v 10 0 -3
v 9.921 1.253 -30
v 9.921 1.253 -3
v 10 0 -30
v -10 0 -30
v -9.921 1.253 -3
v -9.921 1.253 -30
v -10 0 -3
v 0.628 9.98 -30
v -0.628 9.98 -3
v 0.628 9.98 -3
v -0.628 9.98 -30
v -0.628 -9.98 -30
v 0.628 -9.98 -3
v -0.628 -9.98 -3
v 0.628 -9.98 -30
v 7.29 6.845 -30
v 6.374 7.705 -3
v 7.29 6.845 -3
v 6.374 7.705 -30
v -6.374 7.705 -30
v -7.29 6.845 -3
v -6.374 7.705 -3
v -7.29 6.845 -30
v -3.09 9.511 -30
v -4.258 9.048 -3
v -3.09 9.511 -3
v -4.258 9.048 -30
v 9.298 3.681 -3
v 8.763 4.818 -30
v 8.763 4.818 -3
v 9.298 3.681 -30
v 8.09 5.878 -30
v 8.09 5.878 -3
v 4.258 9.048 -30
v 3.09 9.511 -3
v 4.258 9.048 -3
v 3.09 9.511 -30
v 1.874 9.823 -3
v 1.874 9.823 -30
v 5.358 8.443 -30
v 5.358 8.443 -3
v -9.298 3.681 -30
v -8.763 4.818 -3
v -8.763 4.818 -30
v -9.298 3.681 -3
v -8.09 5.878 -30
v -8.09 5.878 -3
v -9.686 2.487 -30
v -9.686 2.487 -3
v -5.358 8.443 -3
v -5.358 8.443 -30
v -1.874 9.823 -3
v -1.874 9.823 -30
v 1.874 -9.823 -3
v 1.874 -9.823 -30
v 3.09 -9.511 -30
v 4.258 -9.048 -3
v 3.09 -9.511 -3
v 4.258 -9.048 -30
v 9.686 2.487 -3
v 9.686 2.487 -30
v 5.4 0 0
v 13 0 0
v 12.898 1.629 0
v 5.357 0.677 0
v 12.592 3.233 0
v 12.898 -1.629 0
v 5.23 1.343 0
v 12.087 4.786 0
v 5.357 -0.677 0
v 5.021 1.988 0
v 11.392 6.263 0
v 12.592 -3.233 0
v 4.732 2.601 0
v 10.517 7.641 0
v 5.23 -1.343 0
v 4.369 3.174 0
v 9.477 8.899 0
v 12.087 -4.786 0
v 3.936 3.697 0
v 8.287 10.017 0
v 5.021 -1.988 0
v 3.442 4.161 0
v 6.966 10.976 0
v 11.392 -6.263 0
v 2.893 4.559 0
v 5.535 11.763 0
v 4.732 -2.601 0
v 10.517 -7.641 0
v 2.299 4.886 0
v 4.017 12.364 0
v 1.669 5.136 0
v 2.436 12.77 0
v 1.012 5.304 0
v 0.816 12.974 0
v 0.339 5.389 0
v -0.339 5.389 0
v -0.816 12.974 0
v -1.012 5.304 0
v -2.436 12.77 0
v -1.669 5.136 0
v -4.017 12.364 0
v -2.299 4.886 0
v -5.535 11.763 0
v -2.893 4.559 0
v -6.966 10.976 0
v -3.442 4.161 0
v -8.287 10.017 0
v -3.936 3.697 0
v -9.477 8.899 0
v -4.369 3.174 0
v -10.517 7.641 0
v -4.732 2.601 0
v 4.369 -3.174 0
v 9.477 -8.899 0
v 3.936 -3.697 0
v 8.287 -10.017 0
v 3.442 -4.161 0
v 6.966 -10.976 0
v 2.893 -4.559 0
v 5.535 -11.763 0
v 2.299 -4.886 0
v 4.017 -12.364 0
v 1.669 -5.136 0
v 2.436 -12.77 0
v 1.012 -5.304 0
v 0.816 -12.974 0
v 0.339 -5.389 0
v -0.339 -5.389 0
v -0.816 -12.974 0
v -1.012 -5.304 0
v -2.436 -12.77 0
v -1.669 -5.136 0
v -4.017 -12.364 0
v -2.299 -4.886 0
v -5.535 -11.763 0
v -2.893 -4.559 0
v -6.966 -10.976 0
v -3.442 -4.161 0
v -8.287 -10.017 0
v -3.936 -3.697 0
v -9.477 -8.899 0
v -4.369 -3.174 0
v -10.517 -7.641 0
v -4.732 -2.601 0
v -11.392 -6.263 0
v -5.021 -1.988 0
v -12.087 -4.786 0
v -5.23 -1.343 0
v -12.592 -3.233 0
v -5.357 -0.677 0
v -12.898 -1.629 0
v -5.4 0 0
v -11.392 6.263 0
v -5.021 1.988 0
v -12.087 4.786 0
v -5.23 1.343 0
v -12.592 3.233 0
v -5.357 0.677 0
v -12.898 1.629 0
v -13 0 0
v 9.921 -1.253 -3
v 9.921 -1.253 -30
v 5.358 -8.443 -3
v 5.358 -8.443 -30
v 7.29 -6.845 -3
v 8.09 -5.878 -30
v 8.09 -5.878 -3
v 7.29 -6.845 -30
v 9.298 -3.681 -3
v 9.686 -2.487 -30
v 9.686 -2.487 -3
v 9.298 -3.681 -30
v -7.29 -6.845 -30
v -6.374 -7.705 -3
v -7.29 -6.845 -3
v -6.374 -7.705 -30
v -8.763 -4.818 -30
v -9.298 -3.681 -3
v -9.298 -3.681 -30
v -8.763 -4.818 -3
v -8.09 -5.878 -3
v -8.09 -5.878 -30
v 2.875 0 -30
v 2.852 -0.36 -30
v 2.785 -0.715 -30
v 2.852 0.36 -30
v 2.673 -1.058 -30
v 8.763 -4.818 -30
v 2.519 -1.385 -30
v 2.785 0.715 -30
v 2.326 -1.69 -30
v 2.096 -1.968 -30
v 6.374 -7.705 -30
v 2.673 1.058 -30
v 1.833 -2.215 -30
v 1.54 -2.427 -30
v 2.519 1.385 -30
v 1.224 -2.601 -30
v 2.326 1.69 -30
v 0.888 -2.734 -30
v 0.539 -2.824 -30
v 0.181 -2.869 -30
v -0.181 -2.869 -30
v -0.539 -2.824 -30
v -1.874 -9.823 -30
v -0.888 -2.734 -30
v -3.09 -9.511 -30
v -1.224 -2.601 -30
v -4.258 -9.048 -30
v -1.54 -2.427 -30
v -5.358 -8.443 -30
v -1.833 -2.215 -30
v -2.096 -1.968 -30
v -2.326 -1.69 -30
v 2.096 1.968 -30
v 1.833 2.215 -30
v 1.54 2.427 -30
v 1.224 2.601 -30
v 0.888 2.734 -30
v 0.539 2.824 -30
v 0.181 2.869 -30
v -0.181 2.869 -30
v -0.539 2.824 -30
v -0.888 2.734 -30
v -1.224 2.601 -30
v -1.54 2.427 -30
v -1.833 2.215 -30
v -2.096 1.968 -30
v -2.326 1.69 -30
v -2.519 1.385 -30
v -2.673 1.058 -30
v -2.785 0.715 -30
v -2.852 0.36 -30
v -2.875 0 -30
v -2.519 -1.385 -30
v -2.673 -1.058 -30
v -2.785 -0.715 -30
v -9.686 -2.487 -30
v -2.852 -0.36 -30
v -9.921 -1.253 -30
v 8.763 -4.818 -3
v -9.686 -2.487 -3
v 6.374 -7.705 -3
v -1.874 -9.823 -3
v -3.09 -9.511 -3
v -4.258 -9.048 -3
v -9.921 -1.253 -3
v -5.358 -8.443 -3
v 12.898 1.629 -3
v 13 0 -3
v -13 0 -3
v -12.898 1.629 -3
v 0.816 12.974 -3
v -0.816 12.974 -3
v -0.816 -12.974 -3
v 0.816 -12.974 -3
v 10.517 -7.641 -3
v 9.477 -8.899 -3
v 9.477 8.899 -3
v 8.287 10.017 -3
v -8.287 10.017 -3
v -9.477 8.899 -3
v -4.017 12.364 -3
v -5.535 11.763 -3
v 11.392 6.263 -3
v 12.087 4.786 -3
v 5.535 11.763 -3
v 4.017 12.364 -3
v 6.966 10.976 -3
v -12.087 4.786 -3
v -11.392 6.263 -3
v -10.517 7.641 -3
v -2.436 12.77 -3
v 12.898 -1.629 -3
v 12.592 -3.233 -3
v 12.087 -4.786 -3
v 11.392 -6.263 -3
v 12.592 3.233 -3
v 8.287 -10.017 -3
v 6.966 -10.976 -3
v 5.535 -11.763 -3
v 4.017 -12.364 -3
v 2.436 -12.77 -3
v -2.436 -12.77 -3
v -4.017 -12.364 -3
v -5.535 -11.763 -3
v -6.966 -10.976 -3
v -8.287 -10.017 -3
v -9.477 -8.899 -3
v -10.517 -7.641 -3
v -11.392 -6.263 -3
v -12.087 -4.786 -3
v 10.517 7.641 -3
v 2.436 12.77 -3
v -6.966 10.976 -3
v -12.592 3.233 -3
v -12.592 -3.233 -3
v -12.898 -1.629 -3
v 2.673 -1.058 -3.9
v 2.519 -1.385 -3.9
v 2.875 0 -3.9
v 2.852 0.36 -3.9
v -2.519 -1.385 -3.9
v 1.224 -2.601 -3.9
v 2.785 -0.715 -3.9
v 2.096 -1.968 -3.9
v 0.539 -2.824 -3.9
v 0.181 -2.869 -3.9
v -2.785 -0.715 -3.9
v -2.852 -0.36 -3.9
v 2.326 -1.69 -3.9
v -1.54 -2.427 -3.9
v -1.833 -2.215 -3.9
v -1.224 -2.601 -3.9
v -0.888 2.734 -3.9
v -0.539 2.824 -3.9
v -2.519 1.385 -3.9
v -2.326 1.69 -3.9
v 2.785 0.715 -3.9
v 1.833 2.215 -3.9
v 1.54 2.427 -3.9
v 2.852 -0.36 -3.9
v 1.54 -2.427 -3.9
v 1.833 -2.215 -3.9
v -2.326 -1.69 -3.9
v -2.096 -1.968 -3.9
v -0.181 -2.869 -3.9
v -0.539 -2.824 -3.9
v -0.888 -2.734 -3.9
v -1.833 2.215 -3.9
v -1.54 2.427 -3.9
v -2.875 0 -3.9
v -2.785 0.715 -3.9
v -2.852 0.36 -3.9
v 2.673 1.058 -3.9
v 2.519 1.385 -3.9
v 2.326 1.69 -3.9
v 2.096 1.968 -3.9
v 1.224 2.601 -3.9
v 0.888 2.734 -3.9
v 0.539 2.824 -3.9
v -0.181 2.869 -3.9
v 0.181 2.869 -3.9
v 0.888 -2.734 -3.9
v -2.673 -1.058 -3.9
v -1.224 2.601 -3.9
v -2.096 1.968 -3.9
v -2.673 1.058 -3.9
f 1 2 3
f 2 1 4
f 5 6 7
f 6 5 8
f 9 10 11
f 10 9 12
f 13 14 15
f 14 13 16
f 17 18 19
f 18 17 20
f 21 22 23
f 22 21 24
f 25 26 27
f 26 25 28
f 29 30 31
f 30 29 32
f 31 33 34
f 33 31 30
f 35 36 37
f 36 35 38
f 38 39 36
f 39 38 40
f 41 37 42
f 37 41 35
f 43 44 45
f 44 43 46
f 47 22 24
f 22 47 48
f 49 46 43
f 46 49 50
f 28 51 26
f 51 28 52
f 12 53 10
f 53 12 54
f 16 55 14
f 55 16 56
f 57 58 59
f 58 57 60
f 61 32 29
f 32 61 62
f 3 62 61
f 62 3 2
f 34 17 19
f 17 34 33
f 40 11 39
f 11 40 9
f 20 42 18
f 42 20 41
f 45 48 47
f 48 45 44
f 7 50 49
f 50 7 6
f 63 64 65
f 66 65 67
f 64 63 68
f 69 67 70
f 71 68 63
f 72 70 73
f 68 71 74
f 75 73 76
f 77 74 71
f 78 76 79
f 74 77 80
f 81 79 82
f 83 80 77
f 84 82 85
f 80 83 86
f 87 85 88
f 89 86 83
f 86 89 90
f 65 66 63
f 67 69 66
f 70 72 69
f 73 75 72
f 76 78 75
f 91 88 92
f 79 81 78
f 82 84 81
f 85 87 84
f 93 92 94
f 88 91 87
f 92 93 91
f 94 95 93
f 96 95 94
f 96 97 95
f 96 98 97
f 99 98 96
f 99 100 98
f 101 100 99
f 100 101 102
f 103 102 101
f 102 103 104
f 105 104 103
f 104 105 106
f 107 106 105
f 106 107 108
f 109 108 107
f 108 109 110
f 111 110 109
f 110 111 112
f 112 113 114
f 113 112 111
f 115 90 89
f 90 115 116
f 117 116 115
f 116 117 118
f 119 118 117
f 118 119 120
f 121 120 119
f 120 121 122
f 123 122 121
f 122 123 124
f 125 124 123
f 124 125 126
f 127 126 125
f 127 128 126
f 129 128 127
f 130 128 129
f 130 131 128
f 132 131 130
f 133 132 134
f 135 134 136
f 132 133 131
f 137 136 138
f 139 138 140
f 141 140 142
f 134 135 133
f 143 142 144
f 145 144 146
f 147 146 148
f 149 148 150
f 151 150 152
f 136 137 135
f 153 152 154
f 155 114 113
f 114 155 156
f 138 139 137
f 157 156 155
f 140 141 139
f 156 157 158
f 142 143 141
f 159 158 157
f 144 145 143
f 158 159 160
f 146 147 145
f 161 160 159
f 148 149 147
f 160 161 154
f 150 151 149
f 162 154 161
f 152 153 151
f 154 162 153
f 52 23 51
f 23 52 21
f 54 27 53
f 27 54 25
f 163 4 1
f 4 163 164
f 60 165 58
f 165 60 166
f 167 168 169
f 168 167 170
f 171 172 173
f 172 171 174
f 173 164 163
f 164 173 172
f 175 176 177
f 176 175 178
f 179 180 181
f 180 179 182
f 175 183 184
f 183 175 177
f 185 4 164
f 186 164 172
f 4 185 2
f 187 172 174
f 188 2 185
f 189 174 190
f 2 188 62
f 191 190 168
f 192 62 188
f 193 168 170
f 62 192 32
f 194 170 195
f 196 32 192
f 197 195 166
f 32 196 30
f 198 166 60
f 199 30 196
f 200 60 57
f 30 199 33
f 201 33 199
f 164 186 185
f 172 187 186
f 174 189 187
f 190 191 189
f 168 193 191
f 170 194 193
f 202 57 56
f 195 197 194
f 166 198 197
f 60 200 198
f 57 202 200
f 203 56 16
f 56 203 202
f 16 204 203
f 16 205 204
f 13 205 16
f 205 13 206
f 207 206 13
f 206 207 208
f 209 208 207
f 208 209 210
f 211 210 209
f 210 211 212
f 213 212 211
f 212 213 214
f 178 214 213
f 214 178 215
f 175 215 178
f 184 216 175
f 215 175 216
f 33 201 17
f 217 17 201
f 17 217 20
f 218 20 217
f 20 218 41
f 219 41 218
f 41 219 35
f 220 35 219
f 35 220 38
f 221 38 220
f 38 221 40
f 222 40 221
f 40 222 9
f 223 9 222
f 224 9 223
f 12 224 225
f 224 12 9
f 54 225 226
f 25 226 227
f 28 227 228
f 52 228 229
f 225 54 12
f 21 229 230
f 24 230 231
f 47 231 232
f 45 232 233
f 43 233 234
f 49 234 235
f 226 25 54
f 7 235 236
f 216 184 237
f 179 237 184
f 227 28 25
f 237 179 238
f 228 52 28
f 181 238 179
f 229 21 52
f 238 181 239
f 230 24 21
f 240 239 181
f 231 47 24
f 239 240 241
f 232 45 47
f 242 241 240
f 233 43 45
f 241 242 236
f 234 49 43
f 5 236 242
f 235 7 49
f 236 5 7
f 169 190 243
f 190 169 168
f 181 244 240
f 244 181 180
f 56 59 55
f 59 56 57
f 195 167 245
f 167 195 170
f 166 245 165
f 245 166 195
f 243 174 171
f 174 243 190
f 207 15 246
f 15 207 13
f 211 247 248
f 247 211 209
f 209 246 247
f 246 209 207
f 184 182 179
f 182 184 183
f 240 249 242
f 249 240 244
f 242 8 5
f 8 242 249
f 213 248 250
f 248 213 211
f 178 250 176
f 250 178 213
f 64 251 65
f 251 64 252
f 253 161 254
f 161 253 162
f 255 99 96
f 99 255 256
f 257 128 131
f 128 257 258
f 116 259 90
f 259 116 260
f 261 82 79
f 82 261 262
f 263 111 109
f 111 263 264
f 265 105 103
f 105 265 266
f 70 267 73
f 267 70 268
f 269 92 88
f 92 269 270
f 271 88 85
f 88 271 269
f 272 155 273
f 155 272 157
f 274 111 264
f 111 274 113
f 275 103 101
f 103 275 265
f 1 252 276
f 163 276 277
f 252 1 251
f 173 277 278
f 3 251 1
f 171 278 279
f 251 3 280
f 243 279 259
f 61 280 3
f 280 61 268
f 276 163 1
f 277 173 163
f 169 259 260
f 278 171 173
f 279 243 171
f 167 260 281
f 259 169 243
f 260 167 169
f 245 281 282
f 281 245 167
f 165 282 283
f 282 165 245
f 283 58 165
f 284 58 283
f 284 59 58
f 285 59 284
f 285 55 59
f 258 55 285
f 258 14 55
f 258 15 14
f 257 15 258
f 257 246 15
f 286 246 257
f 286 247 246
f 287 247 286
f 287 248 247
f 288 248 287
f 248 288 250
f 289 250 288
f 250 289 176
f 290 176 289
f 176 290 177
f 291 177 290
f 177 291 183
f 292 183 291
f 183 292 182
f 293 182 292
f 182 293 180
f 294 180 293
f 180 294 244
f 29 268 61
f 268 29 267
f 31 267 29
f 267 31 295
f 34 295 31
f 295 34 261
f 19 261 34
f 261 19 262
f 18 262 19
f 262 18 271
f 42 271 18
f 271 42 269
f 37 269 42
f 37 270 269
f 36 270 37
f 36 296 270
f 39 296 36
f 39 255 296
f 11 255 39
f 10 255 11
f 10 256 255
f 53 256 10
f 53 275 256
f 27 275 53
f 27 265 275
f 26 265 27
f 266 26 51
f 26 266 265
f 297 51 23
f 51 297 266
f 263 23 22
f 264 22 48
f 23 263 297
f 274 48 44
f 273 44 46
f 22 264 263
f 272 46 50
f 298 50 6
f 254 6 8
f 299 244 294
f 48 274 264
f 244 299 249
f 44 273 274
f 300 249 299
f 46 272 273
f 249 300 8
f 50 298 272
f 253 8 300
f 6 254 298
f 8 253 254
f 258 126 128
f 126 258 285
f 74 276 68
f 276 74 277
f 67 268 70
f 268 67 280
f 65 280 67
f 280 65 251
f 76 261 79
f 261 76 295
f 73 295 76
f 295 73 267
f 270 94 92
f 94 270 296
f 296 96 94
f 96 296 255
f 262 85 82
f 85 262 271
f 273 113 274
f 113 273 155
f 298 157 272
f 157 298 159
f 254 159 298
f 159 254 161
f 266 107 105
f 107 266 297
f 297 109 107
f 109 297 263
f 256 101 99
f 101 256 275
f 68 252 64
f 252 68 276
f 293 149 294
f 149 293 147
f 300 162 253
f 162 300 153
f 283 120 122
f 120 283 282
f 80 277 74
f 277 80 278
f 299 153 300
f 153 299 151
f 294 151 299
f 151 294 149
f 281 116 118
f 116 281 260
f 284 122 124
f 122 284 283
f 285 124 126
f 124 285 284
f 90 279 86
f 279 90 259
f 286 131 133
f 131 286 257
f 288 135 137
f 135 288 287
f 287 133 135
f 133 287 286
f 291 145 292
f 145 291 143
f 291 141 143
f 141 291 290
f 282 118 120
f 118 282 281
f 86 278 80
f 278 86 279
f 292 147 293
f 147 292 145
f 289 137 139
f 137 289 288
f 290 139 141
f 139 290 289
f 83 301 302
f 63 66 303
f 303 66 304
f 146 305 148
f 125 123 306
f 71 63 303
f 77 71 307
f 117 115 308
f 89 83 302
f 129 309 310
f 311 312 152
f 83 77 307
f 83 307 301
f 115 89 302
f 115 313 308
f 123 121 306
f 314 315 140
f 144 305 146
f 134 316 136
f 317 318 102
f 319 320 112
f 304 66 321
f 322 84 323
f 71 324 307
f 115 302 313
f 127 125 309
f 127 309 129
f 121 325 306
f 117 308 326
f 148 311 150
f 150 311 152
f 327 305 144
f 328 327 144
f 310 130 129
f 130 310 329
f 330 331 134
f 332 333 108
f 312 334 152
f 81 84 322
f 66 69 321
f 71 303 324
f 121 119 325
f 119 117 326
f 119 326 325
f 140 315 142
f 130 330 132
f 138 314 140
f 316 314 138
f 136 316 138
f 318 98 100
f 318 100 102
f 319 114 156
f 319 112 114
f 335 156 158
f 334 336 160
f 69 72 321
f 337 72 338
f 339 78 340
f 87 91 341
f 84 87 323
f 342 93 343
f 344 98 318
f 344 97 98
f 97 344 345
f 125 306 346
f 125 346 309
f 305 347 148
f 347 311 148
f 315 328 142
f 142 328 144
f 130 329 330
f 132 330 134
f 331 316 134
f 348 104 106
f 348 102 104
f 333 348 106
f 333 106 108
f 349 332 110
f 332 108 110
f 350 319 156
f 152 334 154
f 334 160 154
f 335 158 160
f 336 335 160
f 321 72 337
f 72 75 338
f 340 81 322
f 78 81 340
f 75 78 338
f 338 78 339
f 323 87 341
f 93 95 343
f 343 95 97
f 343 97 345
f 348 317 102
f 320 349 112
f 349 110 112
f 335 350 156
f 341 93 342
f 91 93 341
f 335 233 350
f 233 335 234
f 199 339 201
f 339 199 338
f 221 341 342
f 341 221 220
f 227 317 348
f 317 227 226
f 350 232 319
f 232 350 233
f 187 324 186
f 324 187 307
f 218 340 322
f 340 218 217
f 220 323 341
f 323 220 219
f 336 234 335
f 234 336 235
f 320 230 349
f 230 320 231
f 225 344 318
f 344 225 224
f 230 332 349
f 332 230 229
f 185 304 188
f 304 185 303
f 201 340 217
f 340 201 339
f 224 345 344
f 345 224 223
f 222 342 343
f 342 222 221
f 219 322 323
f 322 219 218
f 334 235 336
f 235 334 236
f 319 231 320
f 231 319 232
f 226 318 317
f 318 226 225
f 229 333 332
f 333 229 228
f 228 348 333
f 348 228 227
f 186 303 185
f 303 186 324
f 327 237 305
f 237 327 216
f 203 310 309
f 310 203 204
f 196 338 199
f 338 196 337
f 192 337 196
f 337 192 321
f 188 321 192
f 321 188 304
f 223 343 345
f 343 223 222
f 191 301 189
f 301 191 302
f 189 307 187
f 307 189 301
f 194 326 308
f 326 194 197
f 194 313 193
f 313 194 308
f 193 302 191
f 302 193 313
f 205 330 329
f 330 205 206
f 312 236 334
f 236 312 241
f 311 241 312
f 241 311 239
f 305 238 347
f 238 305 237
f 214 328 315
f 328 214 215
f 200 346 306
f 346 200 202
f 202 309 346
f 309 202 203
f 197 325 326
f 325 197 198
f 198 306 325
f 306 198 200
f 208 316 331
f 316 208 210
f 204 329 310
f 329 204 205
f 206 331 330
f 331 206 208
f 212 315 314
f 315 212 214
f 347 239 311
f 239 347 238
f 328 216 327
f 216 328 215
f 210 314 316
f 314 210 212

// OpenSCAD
$fn = 50;


difference() {
	union() {
		translate(v = [0, 0, -30.0000000000]) {
			cylinder(h = 30, r = 10.0000000000);
		}
		translate(v = [0, 0, -3.0000000000]) {
			cylinder(h = 3, r = 13.0000000000);
		}
	}
	union() {
		translate(v = [0, 0, 0]) {
			rotate(a = [0, 0, 0]) {
				difference() {
					union() {
						#translate(v = [0, 0, -30.0000000000]) {
							cylinder(h = 30, r = 2.6000000000);
						}
						#translate(v = [0, 0, -3.9000000000]) {
							cylinder(h = 3.9000000000, r1 = 2.8750000000, r2 = 5.4000000000);
						}
						#translate(v = [0, 0, -30.0000000000]) {
							cylinder(h = 30, r = 2.8750000000);
						}
						#translate(v = [0, 0, -30.0000000000]) {
							cylinder(h = 30, r = 2.6000000000);
						}
					}
					union();
				}
			}
		}
	}
}
